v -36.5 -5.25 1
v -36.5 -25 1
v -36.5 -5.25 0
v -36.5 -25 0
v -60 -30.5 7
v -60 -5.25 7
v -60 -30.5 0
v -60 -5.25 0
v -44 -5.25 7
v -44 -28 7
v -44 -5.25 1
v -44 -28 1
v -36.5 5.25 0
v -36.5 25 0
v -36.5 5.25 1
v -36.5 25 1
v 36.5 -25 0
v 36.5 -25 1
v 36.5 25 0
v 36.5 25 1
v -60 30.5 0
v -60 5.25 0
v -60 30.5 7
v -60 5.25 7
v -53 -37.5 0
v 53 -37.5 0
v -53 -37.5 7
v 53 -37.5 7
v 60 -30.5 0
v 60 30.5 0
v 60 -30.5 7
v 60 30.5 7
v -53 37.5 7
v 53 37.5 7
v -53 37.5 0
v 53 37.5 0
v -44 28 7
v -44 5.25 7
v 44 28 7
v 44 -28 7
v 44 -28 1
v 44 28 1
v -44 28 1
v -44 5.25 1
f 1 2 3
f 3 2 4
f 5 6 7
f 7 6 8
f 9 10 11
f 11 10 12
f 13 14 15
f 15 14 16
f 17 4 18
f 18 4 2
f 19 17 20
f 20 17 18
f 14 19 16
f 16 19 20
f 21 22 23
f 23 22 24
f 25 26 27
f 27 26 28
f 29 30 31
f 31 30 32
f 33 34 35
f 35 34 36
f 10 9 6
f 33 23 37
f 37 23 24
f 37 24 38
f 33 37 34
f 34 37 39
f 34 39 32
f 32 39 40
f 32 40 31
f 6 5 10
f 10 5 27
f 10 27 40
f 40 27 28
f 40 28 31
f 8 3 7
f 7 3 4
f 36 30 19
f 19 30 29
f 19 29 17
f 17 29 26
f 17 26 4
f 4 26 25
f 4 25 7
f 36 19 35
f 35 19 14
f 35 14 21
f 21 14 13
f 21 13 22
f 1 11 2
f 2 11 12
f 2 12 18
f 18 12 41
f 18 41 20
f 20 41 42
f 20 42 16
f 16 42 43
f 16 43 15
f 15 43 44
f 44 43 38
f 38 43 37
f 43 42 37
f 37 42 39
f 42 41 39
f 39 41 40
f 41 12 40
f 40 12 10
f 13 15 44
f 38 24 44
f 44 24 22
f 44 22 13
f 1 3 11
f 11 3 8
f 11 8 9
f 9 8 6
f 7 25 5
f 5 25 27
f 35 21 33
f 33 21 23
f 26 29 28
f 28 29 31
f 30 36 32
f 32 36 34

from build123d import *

# Parameters (mm, degrees)
CROQUIS1_W              = 120
CROQUIS1_H              = 75
SALIENTE_EXTRUIR1_DEPTH = 7
CROQUIS2_W              = 73
CROQUIS2_H              = 50
CORTAR_EXTRUIR1_DEPTH   = 15
CROQUIS3_W              = 88
CROQUIS3_H              = 56
CORTAR_EXTRUIR2_DEPTH   = 6
CROQUIS4_W              = 23.5
CROQUIS4_H              = 10.5
CORTAR_EXTRUIR3_DEPTH   = 25
CHAFL_N3_SIZE           = 7


with BuildPart() as part:
    # Croquis1 → Saliente-Extruir1 (new body)
    with BuildSketch(Plane.XY):
        Rectangle(CROQUIS1_W, CROQUIS1_H)
    extrude(amount=SALIENTE_EXTRUIR1_DEPTH)

    # Croquis2 → Cortar-Extruir1 (cut)
    with BuildSketch(Plane(origin=(0, 0, 0), x_dir=(-1, 0, 0), z_dir=(0, 0, -1))):
        Rectangle(CROQUIS2_W, CROQUIS2_H)
    extrude(amount=-CORTAR_EXTRUIR1_DEPTH, mode=Mode.SUBTRACT)

    # Croquis3 → Cortar-Extruir2 (cut)
    with BuildSketch(Plane.XY.offset(7)):
        Rectangle(CROQUIS3_W, CROQUIS3_H)
    extrude(amount=-CORTAR_EXTRUIR2_DEPTH, mode=Mode.SUBTRACT)

    # Croquis4 → Cortar-Extruir3 (cut)
    with BuildSketch(Plane(origin=(0, 0, 0), x_dir=(-1, 0, 0), z_dir=(0, 0, -1))):
        with Locations((48.25, 0)):
            Rectangle(CROQUIS4_W, CROQUIS4_H)
    extrude(amount=-CORTAR_EXTRUIR3_DEPTH, mode=Mode.SUBTRACT)

    # Chaflán3
    chafl_n3_edges = [part.edges().sort_by_distance(p)[0] for p in [
        (-60, 37.5, 3.5),
        (60, 37.5, 3.5),
        (60, -37.5, 3.5),
        (-60, -37.5, 3.5),
    ]]
    chamfer(chafl_n3_edges, length=CHAFL_N3_SIZE)


solid = part.part
